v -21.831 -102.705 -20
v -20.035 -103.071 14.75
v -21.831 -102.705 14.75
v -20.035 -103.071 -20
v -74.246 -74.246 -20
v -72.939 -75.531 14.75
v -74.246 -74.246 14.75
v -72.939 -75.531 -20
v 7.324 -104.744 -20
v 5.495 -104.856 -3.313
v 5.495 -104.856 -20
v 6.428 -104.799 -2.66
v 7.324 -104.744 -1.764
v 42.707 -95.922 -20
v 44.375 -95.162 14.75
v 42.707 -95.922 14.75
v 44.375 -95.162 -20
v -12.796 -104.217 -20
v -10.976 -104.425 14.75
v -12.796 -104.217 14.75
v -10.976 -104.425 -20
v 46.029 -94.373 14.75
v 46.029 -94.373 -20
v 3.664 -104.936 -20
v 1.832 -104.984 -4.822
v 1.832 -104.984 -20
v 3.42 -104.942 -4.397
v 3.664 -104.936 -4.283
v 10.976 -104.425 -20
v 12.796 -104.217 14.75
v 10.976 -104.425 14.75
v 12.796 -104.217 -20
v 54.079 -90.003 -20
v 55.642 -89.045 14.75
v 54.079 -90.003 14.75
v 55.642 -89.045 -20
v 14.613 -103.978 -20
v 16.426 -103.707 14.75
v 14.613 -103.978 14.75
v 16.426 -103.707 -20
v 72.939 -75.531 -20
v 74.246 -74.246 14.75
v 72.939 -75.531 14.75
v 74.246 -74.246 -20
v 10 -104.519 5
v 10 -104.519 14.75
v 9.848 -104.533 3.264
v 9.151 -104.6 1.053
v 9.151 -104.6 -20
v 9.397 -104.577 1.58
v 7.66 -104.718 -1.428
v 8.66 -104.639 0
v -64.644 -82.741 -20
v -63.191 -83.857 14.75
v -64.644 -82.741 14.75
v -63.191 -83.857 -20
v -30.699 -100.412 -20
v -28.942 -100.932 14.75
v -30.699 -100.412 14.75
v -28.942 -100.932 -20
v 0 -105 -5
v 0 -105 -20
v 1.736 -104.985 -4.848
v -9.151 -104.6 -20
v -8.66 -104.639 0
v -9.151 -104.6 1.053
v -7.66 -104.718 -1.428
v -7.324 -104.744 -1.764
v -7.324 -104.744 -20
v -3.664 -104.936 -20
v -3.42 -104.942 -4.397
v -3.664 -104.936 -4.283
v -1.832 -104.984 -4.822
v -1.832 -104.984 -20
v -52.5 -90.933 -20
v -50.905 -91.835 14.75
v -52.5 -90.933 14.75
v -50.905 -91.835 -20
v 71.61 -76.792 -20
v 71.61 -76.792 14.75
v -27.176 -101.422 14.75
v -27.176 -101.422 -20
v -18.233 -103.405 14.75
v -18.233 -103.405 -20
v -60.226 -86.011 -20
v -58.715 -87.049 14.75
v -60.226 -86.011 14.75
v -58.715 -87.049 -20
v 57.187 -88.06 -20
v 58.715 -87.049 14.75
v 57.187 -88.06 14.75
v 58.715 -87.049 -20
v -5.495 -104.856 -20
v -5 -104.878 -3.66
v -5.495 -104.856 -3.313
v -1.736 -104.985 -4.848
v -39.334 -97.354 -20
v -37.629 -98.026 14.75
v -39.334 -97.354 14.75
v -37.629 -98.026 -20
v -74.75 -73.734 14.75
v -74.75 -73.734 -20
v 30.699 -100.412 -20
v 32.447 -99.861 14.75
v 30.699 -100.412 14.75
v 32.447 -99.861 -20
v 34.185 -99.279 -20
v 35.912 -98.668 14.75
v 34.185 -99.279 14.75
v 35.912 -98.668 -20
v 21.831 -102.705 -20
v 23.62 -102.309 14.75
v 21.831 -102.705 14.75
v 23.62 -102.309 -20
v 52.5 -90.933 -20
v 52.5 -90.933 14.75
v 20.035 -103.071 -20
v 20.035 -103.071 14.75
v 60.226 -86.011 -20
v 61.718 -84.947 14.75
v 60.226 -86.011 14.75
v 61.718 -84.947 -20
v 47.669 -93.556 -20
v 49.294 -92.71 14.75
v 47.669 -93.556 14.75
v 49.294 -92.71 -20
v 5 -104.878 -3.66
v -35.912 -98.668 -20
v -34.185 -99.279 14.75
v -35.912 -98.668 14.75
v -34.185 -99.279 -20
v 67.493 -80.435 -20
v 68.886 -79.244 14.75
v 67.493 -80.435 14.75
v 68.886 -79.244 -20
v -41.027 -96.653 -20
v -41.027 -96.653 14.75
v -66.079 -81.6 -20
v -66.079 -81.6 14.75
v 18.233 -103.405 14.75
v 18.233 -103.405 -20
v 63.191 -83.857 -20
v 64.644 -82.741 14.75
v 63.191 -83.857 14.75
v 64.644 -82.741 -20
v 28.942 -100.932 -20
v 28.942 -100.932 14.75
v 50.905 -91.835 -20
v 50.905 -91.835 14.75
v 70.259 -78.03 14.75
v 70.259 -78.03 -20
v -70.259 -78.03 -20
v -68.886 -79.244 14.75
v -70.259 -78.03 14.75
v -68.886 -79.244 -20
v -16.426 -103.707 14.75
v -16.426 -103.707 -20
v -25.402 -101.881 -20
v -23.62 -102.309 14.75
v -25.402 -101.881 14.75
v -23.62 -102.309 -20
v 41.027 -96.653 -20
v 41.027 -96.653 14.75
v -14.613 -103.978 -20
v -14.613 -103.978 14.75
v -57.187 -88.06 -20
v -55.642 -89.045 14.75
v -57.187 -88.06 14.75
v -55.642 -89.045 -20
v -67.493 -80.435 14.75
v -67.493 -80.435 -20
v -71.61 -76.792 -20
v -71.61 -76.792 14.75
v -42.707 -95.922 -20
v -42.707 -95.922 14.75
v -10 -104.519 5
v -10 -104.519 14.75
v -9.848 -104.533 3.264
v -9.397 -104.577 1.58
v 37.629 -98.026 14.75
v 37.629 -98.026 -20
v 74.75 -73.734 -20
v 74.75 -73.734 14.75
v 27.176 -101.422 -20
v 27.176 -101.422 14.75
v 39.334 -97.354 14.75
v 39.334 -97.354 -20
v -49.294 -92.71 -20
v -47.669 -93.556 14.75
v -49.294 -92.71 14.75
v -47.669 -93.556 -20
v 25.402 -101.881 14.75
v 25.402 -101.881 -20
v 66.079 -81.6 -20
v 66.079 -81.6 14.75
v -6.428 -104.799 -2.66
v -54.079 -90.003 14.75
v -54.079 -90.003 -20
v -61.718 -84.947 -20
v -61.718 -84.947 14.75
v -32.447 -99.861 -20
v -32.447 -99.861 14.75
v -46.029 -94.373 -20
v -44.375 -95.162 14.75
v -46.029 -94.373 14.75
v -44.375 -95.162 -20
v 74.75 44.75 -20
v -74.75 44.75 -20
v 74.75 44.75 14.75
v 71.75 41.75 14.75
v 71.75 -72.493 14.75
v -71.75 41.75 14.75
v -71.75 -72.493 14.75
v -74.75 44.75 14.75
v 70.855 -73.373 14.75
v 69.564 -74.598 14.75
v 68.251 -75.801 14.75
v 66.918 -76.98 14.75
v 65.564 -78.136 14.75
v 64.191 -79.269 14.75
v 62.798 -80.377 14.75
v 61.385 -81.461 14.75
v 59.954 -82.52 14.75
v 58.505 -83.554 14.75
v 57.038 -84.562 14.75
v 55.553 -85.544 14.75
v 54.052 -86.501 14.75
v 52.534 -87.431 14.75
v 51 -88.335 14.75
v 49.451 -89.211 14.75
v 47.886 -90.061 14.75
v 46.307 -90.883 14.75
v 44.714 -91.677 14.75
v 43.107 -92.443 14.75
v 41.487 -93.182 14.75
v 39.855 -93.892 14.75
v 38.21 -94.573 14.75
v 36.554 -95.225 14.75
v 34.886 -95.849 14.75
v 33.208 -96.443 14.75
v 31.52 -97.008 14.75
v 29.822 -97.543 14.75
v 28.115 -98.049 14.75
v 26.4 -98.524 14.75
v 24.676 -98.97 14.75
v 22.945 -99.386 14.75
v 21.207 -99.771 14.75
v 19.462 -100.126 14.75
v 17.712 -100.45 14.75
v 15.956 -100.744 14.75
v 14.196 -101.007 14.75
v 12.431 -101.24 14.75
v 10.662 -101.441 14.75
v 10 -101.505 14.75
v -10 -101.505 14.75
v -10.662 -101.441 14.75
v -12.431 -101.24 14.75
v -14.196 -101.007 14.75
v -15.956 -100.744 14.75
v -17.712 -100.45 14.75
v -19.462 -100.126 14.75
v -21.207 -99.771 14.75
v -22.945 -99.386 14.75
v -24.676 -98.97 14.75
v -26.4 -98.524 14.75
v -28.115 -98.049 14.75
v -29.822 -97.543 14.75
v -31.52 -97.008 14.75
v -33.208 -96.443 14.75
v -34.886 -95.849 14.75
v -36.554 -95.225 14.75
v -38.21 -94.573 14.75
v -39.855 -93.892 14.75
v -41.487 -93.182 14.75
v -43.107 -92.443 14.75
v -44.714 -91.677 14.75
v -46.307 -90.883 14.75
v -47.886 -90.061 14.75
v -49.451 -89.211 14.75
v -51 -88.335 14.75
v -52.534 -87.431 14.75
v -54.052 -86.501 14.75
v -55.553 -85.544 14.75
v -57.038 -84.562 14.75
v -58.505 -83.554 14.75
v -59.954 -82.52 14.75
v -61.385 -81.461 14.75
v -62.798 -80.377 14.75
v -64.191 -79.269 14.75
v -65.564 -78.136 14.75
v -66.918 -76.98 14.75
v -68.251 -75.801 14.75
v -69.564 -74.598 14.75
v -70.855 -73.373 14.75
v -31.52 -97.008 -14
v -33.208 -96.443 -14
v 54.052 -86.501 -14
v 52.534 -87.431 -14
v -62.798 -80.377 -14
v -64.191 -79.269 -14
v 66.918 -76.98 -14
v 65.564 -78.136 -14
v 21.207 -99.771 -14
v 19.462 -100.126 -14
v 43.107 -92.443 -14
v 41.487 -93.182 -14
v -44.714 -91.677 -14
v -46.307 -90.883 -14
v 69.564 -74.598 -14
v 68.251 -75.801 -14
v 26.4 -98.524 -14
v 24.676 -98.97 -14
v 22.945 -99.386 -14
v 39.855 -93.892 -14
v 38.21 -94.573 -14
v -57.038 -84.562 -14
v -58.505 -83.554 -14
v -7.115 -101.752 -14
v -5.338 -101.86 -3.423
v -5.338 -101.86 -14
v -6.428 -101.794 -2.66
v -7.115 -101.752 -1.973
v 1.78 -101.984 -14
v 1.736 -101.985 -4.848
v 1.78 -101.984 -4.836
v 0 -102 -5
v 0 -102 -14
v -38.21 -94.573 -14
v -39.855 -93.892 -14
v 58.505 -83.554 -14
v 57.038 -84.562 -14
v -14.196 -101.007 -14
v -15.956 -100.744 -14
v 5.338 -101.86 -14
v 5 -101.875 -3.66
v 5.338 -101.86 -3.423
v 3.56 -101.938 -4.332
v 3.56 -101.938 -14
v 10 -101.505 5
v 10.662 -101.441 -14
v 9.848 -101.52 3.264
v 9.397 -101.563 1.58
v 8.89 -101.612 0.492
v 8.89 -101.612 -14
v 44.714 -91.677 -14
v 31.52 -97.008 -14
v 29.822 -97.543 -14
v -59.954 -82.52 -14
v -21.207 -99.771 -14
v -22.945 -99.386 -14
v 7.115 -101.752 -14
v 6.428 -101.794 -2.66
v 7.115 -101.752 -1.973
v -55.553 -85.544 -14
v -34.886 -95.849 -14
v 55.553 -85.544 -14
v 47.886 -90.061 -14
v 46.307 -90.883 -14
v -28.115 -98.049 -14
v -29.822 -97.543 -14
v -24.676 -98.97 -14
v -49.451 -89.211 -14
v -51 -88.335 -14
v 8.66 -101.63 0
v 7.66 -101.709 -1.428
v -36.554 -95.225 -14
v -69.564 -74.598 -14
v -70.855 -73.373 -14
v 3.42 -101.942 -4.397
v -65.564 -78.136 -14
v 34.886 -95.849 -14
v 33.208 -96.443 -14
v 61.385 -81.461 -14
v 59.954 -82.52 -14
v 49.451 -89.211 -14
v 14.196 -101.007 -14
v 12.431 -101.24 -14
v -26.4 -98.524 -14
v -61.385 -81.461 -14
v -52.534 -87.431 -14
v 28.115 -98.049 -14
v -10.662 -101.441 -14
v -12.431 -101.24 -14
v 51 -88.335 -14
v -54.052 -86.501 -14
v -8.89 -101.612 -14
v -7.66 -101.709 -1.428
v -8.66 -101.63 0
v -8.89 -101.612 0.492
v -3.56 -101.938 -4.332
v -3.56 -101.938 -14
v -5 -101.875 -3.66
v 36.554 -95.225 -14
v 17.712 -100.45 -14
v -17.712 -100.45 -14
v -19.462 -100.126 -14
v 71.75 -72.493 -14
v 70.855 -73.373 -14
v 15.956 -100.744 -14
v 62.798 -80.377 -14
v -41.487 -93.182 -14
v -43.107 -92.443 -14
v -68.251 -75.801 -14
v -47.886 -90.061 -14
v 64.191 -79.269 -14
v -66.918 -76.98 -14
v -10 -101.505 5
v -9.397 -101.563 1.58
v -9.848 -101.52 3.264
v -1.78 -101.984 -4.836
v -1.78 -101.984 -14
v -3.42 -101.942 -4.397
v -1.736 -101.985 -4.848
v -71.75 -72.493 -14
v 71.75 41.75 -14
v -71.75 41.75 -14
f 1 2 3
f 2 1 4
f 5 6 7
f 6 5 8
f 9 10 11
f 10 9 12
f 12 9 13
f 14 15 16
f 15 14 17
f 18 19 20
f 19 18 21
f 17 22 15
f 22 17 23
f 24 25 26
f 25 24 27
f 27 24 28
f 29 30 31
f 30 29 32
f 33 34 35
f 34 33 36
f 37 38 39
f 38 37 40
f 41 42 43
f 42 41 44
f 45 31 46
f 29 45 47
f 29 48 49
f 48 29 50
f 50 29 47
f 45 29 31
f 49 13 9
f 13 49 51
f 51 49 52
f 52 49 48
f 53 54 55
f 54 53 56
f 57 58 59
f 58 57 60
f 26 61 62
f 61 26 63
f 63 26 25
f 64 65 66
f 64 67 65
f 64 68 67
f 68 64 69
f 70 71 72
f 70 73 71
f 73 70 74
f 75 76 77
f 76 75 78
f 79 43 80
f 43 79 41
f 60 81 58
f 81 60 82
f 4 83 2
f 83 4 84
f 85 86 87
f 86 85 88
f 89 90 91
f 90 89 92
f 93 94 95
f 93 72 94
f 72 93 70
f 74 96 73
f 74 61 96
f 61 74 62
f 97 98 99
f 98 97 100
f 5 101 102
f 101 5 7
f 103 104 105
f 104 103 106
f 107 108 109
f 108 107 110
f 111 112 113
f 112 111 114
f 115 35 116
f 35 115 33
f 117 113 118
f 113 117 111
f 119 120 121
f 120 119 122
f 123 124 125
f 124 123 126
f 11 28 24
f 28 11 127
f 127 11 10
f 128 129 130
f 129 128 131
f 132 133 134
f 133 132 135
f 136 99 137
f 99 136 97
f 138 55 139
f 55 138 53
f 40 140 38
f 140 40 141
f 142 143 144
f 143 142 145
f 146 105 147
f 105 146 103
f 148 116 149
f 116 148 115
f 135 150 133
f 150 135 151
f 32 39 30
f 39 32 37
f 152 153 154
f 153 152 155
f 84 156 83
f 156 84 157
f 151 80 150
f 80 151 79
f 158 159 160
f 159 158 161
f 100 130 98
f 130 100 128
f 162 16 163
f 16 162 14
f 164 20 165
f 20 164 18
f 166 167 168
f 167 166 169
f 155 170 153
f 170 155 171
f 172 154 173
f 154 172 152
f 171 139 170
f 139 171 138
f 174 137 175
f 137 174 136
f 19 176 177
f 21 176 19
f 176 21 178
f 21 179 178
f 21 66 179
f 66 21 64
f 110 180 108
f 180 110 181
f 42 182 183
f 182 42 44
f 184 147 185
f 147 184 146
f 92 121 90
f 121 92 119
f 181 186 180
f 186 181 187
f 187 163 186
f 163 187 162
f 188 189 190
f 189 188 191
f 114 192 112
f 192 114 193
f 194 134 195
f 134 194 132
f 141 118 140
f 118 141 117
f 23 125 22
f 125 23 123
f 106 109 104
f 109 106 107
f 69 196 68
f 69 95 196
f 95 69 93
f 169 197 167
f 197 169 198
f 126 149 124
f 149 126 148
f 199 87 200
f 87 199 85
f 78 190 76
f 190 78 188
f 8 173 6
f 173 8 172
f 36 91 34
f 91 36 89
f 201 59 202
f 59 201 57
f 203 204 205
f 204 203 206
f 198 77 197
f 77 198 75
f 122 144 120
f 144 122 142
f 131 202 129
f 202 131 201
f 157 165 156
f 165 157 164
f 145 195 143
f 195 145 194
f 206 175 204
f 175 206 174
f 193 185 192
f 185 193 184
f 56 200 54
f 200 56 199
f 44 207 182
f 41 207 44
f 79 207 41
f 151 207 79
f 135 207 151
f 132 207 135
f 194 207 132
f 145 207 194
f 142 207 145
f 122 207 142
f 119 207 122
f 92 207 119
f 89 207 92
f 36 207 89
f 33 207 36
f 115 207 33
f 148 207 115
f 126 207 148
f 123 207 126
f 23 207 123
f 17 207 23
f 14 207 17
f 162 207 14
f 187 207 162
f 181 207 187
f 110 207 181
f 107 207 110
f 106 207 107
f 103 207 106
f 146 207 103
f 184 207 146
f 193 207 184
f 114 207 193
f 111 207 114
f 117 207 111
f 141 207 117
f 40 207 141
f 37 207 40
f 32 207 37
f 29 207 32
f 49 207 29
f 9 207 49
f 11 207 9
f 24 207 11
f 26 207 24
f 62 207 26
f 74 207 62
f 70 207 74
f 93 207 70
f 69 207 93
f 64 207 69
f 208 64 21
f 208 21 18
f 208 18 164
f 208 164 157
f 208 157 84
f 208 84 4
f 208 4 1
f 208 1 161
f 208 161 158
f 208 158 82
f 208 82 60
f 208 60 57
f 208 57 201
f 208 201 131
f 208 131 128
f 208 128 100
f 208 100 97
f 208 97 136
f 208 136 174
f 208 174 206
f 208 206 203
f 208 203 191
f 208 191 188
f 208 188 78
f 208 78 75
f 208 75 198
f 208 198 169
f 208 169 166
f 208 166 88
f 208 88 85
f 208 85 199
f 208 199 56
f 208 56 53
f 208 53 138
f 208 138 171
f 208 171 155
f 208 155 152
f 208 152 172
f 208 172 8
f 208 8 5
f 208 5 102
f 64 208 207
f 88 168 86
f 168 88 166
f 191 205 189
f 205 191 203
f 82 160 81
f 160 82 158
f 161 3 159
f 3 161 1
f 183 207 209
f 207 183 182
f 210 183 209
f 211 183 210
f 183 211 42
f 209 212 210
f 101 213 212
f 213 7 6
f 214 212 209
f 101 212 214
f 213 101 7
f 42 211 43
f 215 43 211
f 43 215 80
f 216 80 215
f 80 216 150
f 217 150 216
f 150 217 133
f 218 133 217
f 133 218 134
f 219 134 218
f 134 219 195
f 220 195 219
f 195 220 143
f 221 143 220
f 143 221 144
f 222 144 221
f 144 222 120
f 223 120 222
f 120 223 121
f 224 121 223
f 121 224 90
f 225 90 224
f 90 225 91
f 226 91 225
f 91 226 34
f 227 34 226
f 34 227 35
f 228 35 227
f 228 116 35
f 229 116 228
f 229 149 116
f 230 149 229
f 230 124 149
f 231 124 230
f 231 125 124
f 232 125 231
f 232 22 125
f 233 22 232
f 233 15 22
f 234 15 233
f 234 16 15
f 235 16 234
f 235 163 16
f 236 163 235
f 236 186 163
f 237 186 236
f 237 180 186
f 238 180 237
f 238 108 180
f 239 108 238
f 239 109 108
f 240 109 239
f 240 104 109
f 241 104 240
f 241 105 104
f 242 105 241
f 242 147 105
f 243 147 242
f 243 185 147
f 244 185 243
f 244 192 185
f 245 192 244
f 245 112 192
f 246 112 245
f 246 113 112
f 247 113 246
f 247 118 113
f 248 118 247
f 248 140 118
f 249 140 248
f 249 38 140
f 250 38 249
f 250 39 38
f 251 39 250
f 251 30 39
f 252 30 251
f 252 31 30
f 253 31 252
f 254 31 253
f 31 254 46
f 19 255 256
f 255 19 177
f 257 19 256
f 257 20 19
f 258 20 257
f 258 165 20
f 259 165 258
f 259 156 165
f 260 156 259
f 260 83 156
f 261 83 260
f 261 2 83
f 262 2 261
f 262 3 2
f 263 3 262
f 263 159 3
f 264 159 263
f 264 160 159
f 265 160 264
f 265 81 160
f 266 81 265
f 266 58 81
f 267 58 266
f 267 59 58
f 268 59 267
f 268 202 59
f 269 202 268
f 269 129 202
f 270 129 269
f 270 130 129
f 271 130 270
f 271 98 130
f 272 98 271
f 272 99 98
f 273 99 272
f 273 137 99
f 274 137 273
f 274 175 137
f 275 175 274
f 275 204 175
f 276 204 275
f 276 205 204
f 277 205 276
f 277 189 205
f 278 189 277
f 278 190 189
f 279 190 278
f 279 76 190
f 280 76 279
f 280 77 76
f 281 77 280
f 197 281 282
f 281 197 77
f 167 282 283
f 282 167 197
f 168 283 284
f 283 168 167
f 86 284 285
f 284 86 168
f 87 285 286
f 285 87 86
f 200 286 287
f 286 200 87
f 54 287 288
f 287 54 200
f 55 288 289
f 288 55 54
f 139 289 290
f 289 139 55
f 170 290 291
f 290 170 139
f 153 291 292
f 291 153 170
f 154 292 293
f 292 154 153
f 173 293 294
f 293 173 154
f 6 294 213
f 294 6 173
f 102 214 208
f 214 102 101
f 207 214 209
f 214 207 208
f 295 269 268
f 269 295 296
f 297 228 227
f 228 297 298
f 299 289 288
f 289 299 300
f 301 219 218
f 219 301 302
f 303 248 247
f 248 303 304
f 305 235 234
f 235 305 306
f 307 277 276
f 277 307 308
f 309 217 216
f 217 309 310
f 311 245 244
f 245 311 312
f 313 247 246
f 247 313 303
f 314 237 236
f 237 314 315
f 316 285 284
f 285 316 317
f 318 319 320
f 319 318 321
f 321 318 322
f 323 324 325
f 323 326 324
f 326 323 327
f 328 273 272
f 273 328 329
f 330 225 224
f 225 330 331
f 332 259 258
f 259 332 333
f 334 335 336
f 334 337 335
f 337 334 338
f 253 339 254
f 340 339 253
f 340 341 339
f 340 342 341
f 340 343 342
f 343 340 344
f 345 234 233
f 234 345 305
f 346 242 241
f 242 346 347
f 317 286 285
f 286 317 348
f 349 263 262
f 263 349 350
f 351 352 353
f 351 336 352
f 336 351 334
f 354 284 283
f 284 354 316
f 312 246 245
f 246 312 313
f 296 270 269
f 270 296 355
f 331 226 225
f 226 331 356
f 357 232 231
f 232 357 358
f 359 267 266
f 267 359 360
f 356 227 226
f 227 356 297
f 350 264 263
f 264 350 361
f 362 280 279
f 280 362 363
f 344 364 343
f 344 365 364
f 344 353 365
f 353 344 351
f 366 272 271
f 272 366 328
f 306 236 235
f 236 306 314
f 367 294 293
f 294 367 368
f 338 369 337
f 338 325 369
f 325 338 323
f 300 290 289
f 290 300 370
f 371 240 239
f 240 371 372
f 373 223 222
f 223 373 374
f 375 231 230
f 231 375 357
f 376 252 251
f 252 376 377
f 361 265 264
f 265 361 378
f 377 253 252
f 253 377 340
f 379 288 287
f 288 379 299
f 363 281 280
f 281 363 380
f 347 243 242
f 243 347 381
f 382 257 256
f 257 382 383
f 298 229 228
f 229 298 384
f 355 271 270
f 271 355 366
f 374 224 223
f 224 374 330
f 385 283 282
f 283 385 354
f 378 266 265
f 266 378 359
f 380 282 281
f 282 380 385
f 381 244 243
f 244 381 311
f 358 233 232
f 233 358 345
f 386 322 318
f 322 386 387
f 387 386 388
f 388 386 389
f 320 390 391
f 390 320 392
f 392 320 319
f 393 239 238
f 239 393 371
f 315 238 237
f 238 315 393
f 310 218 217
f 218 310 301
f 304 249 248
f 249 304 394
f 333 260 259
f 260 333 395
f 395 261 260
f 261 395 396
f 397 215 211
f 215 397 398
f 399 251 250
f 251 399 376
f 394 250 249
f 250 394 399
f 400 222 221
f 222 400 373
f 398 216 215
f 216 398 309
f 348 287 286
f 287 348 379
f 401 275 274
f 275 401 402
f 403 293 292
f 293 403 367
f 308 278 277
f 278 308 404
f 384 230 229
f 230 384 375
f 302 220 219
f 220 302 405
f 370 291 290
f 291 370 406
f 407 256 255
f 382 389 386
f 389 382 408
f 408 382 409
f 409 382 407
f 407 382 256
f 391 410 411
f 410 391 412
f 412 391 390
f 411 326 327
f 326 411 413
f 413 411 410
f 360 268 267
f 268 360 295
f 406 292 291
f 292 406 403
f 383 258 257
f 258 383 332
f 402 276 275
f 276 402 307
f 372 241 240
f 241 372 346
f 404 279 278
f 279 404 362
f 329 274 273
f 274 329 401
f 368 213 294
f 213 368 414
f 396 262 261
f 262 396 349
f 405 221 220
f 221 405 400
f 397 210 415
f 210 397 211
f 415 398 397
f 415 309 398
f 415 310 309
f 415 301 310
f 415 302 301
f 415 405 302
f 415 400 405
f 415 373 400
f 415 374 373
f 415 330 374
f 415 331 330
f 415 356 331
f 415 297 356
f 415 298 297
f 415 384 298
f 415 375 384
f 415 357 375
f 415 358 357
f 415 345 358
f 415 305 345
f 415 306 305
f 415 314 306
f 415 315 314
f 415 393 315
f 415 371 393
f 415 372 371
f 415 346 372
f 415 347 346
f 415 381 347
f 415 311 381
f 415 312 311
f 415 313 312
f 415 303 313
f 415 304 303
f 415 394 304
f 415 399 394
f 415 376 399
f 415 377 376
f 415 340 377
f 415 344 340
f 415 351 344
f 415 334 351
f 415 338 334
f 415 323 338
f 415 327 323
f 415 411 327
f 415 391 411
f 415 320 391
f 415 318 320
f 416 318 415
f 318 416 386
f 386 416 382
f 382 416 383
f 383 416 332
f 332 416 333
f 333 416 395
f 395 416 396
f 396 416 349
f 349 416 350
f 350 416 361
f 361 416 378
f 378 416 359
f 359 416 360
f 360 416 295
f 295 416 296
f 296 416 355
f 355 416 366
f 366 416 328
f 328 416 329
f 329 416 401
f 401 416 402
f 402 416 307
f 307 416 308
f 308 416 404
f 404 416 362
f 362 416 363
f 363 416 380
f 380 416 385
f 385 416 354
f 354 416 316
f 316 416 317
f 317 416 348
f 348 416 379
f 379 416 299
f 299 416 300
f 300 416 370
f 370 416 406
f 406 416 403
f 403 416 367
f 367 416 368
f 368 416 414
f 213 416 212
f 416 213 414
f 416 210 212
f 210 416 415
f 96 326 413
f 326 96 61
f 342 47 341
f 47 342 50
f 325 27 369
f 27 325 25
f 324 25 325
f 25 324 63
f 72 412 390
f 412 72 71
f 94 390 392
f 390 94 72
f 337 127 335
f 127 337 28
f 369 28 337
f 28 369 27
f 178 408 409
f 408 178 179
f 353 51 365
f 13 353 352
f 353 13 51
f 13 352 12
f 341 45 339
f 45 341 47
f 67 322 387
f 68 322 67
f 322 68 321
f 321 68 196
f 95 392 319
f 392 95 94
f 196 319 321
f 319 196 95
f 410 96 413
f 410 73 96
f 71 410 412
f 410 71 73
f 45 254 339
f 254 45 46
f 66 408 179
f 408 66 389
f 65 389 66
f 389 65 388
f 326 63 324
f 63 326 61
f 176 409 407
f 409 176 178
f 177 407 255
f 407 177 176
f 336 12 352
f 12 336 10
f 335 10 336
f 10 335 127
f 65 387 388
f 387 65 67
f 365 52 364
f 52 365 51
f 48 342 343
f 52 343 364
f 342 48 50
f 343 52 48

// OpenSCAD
baseDiameter = 210;
baseHeight = 40;
drawerWidth = 150;
unionHeight = 5;
walls = 3;
padding = 0.25;

holeCylinderRadius = 20;

//Global variable
$fn=360; 

// Drawer
difference() {
    //Drawer outside
    intersection() {
        cylinder(h=baseHeight, d1=baseDiameter, d2=baseDiameter, center = true);

        color("red", 0.8)
            translate([0,-(baseDiameter-drawerWidth)-padding,-unionHeight/2-padding])
                cube([drawerWidth-padding*2, baseDiameter, baseHeight-unionHeight], center = true);
    }

    //Drawer inside
    intersection() {
        cylinder(h=baseHeight-walls*2, d1=baseDiameter-walls*2, d2=baseDiameter-walls*2, center = true);

        color("blue", 0.8)
            translate([0,-(baseDiameter-drawerWidth)-padding,-unionHeight/2+walls*2])
                cube([drawerWidth-walls*2-padding*2, baseDiameter-walls*2, baseHeight-unionHeight], center = true);
    }

    // Drawer hole
    hull() {
        translate([0,0,unionHeight*3])
            rotate([90,0,0])        
                cylinder(h=drawerWidth, d1=holeCylinderRadius, d2=holeCylinderRadius, $fn=36);

        translate([0,0,unionHeight])
            rotate([90,0,0])        
                cylinder(h=drawerWidth, d1=holeCylinderRadius, d2=holeCylinderRadius, $fn=36);
        }
}
